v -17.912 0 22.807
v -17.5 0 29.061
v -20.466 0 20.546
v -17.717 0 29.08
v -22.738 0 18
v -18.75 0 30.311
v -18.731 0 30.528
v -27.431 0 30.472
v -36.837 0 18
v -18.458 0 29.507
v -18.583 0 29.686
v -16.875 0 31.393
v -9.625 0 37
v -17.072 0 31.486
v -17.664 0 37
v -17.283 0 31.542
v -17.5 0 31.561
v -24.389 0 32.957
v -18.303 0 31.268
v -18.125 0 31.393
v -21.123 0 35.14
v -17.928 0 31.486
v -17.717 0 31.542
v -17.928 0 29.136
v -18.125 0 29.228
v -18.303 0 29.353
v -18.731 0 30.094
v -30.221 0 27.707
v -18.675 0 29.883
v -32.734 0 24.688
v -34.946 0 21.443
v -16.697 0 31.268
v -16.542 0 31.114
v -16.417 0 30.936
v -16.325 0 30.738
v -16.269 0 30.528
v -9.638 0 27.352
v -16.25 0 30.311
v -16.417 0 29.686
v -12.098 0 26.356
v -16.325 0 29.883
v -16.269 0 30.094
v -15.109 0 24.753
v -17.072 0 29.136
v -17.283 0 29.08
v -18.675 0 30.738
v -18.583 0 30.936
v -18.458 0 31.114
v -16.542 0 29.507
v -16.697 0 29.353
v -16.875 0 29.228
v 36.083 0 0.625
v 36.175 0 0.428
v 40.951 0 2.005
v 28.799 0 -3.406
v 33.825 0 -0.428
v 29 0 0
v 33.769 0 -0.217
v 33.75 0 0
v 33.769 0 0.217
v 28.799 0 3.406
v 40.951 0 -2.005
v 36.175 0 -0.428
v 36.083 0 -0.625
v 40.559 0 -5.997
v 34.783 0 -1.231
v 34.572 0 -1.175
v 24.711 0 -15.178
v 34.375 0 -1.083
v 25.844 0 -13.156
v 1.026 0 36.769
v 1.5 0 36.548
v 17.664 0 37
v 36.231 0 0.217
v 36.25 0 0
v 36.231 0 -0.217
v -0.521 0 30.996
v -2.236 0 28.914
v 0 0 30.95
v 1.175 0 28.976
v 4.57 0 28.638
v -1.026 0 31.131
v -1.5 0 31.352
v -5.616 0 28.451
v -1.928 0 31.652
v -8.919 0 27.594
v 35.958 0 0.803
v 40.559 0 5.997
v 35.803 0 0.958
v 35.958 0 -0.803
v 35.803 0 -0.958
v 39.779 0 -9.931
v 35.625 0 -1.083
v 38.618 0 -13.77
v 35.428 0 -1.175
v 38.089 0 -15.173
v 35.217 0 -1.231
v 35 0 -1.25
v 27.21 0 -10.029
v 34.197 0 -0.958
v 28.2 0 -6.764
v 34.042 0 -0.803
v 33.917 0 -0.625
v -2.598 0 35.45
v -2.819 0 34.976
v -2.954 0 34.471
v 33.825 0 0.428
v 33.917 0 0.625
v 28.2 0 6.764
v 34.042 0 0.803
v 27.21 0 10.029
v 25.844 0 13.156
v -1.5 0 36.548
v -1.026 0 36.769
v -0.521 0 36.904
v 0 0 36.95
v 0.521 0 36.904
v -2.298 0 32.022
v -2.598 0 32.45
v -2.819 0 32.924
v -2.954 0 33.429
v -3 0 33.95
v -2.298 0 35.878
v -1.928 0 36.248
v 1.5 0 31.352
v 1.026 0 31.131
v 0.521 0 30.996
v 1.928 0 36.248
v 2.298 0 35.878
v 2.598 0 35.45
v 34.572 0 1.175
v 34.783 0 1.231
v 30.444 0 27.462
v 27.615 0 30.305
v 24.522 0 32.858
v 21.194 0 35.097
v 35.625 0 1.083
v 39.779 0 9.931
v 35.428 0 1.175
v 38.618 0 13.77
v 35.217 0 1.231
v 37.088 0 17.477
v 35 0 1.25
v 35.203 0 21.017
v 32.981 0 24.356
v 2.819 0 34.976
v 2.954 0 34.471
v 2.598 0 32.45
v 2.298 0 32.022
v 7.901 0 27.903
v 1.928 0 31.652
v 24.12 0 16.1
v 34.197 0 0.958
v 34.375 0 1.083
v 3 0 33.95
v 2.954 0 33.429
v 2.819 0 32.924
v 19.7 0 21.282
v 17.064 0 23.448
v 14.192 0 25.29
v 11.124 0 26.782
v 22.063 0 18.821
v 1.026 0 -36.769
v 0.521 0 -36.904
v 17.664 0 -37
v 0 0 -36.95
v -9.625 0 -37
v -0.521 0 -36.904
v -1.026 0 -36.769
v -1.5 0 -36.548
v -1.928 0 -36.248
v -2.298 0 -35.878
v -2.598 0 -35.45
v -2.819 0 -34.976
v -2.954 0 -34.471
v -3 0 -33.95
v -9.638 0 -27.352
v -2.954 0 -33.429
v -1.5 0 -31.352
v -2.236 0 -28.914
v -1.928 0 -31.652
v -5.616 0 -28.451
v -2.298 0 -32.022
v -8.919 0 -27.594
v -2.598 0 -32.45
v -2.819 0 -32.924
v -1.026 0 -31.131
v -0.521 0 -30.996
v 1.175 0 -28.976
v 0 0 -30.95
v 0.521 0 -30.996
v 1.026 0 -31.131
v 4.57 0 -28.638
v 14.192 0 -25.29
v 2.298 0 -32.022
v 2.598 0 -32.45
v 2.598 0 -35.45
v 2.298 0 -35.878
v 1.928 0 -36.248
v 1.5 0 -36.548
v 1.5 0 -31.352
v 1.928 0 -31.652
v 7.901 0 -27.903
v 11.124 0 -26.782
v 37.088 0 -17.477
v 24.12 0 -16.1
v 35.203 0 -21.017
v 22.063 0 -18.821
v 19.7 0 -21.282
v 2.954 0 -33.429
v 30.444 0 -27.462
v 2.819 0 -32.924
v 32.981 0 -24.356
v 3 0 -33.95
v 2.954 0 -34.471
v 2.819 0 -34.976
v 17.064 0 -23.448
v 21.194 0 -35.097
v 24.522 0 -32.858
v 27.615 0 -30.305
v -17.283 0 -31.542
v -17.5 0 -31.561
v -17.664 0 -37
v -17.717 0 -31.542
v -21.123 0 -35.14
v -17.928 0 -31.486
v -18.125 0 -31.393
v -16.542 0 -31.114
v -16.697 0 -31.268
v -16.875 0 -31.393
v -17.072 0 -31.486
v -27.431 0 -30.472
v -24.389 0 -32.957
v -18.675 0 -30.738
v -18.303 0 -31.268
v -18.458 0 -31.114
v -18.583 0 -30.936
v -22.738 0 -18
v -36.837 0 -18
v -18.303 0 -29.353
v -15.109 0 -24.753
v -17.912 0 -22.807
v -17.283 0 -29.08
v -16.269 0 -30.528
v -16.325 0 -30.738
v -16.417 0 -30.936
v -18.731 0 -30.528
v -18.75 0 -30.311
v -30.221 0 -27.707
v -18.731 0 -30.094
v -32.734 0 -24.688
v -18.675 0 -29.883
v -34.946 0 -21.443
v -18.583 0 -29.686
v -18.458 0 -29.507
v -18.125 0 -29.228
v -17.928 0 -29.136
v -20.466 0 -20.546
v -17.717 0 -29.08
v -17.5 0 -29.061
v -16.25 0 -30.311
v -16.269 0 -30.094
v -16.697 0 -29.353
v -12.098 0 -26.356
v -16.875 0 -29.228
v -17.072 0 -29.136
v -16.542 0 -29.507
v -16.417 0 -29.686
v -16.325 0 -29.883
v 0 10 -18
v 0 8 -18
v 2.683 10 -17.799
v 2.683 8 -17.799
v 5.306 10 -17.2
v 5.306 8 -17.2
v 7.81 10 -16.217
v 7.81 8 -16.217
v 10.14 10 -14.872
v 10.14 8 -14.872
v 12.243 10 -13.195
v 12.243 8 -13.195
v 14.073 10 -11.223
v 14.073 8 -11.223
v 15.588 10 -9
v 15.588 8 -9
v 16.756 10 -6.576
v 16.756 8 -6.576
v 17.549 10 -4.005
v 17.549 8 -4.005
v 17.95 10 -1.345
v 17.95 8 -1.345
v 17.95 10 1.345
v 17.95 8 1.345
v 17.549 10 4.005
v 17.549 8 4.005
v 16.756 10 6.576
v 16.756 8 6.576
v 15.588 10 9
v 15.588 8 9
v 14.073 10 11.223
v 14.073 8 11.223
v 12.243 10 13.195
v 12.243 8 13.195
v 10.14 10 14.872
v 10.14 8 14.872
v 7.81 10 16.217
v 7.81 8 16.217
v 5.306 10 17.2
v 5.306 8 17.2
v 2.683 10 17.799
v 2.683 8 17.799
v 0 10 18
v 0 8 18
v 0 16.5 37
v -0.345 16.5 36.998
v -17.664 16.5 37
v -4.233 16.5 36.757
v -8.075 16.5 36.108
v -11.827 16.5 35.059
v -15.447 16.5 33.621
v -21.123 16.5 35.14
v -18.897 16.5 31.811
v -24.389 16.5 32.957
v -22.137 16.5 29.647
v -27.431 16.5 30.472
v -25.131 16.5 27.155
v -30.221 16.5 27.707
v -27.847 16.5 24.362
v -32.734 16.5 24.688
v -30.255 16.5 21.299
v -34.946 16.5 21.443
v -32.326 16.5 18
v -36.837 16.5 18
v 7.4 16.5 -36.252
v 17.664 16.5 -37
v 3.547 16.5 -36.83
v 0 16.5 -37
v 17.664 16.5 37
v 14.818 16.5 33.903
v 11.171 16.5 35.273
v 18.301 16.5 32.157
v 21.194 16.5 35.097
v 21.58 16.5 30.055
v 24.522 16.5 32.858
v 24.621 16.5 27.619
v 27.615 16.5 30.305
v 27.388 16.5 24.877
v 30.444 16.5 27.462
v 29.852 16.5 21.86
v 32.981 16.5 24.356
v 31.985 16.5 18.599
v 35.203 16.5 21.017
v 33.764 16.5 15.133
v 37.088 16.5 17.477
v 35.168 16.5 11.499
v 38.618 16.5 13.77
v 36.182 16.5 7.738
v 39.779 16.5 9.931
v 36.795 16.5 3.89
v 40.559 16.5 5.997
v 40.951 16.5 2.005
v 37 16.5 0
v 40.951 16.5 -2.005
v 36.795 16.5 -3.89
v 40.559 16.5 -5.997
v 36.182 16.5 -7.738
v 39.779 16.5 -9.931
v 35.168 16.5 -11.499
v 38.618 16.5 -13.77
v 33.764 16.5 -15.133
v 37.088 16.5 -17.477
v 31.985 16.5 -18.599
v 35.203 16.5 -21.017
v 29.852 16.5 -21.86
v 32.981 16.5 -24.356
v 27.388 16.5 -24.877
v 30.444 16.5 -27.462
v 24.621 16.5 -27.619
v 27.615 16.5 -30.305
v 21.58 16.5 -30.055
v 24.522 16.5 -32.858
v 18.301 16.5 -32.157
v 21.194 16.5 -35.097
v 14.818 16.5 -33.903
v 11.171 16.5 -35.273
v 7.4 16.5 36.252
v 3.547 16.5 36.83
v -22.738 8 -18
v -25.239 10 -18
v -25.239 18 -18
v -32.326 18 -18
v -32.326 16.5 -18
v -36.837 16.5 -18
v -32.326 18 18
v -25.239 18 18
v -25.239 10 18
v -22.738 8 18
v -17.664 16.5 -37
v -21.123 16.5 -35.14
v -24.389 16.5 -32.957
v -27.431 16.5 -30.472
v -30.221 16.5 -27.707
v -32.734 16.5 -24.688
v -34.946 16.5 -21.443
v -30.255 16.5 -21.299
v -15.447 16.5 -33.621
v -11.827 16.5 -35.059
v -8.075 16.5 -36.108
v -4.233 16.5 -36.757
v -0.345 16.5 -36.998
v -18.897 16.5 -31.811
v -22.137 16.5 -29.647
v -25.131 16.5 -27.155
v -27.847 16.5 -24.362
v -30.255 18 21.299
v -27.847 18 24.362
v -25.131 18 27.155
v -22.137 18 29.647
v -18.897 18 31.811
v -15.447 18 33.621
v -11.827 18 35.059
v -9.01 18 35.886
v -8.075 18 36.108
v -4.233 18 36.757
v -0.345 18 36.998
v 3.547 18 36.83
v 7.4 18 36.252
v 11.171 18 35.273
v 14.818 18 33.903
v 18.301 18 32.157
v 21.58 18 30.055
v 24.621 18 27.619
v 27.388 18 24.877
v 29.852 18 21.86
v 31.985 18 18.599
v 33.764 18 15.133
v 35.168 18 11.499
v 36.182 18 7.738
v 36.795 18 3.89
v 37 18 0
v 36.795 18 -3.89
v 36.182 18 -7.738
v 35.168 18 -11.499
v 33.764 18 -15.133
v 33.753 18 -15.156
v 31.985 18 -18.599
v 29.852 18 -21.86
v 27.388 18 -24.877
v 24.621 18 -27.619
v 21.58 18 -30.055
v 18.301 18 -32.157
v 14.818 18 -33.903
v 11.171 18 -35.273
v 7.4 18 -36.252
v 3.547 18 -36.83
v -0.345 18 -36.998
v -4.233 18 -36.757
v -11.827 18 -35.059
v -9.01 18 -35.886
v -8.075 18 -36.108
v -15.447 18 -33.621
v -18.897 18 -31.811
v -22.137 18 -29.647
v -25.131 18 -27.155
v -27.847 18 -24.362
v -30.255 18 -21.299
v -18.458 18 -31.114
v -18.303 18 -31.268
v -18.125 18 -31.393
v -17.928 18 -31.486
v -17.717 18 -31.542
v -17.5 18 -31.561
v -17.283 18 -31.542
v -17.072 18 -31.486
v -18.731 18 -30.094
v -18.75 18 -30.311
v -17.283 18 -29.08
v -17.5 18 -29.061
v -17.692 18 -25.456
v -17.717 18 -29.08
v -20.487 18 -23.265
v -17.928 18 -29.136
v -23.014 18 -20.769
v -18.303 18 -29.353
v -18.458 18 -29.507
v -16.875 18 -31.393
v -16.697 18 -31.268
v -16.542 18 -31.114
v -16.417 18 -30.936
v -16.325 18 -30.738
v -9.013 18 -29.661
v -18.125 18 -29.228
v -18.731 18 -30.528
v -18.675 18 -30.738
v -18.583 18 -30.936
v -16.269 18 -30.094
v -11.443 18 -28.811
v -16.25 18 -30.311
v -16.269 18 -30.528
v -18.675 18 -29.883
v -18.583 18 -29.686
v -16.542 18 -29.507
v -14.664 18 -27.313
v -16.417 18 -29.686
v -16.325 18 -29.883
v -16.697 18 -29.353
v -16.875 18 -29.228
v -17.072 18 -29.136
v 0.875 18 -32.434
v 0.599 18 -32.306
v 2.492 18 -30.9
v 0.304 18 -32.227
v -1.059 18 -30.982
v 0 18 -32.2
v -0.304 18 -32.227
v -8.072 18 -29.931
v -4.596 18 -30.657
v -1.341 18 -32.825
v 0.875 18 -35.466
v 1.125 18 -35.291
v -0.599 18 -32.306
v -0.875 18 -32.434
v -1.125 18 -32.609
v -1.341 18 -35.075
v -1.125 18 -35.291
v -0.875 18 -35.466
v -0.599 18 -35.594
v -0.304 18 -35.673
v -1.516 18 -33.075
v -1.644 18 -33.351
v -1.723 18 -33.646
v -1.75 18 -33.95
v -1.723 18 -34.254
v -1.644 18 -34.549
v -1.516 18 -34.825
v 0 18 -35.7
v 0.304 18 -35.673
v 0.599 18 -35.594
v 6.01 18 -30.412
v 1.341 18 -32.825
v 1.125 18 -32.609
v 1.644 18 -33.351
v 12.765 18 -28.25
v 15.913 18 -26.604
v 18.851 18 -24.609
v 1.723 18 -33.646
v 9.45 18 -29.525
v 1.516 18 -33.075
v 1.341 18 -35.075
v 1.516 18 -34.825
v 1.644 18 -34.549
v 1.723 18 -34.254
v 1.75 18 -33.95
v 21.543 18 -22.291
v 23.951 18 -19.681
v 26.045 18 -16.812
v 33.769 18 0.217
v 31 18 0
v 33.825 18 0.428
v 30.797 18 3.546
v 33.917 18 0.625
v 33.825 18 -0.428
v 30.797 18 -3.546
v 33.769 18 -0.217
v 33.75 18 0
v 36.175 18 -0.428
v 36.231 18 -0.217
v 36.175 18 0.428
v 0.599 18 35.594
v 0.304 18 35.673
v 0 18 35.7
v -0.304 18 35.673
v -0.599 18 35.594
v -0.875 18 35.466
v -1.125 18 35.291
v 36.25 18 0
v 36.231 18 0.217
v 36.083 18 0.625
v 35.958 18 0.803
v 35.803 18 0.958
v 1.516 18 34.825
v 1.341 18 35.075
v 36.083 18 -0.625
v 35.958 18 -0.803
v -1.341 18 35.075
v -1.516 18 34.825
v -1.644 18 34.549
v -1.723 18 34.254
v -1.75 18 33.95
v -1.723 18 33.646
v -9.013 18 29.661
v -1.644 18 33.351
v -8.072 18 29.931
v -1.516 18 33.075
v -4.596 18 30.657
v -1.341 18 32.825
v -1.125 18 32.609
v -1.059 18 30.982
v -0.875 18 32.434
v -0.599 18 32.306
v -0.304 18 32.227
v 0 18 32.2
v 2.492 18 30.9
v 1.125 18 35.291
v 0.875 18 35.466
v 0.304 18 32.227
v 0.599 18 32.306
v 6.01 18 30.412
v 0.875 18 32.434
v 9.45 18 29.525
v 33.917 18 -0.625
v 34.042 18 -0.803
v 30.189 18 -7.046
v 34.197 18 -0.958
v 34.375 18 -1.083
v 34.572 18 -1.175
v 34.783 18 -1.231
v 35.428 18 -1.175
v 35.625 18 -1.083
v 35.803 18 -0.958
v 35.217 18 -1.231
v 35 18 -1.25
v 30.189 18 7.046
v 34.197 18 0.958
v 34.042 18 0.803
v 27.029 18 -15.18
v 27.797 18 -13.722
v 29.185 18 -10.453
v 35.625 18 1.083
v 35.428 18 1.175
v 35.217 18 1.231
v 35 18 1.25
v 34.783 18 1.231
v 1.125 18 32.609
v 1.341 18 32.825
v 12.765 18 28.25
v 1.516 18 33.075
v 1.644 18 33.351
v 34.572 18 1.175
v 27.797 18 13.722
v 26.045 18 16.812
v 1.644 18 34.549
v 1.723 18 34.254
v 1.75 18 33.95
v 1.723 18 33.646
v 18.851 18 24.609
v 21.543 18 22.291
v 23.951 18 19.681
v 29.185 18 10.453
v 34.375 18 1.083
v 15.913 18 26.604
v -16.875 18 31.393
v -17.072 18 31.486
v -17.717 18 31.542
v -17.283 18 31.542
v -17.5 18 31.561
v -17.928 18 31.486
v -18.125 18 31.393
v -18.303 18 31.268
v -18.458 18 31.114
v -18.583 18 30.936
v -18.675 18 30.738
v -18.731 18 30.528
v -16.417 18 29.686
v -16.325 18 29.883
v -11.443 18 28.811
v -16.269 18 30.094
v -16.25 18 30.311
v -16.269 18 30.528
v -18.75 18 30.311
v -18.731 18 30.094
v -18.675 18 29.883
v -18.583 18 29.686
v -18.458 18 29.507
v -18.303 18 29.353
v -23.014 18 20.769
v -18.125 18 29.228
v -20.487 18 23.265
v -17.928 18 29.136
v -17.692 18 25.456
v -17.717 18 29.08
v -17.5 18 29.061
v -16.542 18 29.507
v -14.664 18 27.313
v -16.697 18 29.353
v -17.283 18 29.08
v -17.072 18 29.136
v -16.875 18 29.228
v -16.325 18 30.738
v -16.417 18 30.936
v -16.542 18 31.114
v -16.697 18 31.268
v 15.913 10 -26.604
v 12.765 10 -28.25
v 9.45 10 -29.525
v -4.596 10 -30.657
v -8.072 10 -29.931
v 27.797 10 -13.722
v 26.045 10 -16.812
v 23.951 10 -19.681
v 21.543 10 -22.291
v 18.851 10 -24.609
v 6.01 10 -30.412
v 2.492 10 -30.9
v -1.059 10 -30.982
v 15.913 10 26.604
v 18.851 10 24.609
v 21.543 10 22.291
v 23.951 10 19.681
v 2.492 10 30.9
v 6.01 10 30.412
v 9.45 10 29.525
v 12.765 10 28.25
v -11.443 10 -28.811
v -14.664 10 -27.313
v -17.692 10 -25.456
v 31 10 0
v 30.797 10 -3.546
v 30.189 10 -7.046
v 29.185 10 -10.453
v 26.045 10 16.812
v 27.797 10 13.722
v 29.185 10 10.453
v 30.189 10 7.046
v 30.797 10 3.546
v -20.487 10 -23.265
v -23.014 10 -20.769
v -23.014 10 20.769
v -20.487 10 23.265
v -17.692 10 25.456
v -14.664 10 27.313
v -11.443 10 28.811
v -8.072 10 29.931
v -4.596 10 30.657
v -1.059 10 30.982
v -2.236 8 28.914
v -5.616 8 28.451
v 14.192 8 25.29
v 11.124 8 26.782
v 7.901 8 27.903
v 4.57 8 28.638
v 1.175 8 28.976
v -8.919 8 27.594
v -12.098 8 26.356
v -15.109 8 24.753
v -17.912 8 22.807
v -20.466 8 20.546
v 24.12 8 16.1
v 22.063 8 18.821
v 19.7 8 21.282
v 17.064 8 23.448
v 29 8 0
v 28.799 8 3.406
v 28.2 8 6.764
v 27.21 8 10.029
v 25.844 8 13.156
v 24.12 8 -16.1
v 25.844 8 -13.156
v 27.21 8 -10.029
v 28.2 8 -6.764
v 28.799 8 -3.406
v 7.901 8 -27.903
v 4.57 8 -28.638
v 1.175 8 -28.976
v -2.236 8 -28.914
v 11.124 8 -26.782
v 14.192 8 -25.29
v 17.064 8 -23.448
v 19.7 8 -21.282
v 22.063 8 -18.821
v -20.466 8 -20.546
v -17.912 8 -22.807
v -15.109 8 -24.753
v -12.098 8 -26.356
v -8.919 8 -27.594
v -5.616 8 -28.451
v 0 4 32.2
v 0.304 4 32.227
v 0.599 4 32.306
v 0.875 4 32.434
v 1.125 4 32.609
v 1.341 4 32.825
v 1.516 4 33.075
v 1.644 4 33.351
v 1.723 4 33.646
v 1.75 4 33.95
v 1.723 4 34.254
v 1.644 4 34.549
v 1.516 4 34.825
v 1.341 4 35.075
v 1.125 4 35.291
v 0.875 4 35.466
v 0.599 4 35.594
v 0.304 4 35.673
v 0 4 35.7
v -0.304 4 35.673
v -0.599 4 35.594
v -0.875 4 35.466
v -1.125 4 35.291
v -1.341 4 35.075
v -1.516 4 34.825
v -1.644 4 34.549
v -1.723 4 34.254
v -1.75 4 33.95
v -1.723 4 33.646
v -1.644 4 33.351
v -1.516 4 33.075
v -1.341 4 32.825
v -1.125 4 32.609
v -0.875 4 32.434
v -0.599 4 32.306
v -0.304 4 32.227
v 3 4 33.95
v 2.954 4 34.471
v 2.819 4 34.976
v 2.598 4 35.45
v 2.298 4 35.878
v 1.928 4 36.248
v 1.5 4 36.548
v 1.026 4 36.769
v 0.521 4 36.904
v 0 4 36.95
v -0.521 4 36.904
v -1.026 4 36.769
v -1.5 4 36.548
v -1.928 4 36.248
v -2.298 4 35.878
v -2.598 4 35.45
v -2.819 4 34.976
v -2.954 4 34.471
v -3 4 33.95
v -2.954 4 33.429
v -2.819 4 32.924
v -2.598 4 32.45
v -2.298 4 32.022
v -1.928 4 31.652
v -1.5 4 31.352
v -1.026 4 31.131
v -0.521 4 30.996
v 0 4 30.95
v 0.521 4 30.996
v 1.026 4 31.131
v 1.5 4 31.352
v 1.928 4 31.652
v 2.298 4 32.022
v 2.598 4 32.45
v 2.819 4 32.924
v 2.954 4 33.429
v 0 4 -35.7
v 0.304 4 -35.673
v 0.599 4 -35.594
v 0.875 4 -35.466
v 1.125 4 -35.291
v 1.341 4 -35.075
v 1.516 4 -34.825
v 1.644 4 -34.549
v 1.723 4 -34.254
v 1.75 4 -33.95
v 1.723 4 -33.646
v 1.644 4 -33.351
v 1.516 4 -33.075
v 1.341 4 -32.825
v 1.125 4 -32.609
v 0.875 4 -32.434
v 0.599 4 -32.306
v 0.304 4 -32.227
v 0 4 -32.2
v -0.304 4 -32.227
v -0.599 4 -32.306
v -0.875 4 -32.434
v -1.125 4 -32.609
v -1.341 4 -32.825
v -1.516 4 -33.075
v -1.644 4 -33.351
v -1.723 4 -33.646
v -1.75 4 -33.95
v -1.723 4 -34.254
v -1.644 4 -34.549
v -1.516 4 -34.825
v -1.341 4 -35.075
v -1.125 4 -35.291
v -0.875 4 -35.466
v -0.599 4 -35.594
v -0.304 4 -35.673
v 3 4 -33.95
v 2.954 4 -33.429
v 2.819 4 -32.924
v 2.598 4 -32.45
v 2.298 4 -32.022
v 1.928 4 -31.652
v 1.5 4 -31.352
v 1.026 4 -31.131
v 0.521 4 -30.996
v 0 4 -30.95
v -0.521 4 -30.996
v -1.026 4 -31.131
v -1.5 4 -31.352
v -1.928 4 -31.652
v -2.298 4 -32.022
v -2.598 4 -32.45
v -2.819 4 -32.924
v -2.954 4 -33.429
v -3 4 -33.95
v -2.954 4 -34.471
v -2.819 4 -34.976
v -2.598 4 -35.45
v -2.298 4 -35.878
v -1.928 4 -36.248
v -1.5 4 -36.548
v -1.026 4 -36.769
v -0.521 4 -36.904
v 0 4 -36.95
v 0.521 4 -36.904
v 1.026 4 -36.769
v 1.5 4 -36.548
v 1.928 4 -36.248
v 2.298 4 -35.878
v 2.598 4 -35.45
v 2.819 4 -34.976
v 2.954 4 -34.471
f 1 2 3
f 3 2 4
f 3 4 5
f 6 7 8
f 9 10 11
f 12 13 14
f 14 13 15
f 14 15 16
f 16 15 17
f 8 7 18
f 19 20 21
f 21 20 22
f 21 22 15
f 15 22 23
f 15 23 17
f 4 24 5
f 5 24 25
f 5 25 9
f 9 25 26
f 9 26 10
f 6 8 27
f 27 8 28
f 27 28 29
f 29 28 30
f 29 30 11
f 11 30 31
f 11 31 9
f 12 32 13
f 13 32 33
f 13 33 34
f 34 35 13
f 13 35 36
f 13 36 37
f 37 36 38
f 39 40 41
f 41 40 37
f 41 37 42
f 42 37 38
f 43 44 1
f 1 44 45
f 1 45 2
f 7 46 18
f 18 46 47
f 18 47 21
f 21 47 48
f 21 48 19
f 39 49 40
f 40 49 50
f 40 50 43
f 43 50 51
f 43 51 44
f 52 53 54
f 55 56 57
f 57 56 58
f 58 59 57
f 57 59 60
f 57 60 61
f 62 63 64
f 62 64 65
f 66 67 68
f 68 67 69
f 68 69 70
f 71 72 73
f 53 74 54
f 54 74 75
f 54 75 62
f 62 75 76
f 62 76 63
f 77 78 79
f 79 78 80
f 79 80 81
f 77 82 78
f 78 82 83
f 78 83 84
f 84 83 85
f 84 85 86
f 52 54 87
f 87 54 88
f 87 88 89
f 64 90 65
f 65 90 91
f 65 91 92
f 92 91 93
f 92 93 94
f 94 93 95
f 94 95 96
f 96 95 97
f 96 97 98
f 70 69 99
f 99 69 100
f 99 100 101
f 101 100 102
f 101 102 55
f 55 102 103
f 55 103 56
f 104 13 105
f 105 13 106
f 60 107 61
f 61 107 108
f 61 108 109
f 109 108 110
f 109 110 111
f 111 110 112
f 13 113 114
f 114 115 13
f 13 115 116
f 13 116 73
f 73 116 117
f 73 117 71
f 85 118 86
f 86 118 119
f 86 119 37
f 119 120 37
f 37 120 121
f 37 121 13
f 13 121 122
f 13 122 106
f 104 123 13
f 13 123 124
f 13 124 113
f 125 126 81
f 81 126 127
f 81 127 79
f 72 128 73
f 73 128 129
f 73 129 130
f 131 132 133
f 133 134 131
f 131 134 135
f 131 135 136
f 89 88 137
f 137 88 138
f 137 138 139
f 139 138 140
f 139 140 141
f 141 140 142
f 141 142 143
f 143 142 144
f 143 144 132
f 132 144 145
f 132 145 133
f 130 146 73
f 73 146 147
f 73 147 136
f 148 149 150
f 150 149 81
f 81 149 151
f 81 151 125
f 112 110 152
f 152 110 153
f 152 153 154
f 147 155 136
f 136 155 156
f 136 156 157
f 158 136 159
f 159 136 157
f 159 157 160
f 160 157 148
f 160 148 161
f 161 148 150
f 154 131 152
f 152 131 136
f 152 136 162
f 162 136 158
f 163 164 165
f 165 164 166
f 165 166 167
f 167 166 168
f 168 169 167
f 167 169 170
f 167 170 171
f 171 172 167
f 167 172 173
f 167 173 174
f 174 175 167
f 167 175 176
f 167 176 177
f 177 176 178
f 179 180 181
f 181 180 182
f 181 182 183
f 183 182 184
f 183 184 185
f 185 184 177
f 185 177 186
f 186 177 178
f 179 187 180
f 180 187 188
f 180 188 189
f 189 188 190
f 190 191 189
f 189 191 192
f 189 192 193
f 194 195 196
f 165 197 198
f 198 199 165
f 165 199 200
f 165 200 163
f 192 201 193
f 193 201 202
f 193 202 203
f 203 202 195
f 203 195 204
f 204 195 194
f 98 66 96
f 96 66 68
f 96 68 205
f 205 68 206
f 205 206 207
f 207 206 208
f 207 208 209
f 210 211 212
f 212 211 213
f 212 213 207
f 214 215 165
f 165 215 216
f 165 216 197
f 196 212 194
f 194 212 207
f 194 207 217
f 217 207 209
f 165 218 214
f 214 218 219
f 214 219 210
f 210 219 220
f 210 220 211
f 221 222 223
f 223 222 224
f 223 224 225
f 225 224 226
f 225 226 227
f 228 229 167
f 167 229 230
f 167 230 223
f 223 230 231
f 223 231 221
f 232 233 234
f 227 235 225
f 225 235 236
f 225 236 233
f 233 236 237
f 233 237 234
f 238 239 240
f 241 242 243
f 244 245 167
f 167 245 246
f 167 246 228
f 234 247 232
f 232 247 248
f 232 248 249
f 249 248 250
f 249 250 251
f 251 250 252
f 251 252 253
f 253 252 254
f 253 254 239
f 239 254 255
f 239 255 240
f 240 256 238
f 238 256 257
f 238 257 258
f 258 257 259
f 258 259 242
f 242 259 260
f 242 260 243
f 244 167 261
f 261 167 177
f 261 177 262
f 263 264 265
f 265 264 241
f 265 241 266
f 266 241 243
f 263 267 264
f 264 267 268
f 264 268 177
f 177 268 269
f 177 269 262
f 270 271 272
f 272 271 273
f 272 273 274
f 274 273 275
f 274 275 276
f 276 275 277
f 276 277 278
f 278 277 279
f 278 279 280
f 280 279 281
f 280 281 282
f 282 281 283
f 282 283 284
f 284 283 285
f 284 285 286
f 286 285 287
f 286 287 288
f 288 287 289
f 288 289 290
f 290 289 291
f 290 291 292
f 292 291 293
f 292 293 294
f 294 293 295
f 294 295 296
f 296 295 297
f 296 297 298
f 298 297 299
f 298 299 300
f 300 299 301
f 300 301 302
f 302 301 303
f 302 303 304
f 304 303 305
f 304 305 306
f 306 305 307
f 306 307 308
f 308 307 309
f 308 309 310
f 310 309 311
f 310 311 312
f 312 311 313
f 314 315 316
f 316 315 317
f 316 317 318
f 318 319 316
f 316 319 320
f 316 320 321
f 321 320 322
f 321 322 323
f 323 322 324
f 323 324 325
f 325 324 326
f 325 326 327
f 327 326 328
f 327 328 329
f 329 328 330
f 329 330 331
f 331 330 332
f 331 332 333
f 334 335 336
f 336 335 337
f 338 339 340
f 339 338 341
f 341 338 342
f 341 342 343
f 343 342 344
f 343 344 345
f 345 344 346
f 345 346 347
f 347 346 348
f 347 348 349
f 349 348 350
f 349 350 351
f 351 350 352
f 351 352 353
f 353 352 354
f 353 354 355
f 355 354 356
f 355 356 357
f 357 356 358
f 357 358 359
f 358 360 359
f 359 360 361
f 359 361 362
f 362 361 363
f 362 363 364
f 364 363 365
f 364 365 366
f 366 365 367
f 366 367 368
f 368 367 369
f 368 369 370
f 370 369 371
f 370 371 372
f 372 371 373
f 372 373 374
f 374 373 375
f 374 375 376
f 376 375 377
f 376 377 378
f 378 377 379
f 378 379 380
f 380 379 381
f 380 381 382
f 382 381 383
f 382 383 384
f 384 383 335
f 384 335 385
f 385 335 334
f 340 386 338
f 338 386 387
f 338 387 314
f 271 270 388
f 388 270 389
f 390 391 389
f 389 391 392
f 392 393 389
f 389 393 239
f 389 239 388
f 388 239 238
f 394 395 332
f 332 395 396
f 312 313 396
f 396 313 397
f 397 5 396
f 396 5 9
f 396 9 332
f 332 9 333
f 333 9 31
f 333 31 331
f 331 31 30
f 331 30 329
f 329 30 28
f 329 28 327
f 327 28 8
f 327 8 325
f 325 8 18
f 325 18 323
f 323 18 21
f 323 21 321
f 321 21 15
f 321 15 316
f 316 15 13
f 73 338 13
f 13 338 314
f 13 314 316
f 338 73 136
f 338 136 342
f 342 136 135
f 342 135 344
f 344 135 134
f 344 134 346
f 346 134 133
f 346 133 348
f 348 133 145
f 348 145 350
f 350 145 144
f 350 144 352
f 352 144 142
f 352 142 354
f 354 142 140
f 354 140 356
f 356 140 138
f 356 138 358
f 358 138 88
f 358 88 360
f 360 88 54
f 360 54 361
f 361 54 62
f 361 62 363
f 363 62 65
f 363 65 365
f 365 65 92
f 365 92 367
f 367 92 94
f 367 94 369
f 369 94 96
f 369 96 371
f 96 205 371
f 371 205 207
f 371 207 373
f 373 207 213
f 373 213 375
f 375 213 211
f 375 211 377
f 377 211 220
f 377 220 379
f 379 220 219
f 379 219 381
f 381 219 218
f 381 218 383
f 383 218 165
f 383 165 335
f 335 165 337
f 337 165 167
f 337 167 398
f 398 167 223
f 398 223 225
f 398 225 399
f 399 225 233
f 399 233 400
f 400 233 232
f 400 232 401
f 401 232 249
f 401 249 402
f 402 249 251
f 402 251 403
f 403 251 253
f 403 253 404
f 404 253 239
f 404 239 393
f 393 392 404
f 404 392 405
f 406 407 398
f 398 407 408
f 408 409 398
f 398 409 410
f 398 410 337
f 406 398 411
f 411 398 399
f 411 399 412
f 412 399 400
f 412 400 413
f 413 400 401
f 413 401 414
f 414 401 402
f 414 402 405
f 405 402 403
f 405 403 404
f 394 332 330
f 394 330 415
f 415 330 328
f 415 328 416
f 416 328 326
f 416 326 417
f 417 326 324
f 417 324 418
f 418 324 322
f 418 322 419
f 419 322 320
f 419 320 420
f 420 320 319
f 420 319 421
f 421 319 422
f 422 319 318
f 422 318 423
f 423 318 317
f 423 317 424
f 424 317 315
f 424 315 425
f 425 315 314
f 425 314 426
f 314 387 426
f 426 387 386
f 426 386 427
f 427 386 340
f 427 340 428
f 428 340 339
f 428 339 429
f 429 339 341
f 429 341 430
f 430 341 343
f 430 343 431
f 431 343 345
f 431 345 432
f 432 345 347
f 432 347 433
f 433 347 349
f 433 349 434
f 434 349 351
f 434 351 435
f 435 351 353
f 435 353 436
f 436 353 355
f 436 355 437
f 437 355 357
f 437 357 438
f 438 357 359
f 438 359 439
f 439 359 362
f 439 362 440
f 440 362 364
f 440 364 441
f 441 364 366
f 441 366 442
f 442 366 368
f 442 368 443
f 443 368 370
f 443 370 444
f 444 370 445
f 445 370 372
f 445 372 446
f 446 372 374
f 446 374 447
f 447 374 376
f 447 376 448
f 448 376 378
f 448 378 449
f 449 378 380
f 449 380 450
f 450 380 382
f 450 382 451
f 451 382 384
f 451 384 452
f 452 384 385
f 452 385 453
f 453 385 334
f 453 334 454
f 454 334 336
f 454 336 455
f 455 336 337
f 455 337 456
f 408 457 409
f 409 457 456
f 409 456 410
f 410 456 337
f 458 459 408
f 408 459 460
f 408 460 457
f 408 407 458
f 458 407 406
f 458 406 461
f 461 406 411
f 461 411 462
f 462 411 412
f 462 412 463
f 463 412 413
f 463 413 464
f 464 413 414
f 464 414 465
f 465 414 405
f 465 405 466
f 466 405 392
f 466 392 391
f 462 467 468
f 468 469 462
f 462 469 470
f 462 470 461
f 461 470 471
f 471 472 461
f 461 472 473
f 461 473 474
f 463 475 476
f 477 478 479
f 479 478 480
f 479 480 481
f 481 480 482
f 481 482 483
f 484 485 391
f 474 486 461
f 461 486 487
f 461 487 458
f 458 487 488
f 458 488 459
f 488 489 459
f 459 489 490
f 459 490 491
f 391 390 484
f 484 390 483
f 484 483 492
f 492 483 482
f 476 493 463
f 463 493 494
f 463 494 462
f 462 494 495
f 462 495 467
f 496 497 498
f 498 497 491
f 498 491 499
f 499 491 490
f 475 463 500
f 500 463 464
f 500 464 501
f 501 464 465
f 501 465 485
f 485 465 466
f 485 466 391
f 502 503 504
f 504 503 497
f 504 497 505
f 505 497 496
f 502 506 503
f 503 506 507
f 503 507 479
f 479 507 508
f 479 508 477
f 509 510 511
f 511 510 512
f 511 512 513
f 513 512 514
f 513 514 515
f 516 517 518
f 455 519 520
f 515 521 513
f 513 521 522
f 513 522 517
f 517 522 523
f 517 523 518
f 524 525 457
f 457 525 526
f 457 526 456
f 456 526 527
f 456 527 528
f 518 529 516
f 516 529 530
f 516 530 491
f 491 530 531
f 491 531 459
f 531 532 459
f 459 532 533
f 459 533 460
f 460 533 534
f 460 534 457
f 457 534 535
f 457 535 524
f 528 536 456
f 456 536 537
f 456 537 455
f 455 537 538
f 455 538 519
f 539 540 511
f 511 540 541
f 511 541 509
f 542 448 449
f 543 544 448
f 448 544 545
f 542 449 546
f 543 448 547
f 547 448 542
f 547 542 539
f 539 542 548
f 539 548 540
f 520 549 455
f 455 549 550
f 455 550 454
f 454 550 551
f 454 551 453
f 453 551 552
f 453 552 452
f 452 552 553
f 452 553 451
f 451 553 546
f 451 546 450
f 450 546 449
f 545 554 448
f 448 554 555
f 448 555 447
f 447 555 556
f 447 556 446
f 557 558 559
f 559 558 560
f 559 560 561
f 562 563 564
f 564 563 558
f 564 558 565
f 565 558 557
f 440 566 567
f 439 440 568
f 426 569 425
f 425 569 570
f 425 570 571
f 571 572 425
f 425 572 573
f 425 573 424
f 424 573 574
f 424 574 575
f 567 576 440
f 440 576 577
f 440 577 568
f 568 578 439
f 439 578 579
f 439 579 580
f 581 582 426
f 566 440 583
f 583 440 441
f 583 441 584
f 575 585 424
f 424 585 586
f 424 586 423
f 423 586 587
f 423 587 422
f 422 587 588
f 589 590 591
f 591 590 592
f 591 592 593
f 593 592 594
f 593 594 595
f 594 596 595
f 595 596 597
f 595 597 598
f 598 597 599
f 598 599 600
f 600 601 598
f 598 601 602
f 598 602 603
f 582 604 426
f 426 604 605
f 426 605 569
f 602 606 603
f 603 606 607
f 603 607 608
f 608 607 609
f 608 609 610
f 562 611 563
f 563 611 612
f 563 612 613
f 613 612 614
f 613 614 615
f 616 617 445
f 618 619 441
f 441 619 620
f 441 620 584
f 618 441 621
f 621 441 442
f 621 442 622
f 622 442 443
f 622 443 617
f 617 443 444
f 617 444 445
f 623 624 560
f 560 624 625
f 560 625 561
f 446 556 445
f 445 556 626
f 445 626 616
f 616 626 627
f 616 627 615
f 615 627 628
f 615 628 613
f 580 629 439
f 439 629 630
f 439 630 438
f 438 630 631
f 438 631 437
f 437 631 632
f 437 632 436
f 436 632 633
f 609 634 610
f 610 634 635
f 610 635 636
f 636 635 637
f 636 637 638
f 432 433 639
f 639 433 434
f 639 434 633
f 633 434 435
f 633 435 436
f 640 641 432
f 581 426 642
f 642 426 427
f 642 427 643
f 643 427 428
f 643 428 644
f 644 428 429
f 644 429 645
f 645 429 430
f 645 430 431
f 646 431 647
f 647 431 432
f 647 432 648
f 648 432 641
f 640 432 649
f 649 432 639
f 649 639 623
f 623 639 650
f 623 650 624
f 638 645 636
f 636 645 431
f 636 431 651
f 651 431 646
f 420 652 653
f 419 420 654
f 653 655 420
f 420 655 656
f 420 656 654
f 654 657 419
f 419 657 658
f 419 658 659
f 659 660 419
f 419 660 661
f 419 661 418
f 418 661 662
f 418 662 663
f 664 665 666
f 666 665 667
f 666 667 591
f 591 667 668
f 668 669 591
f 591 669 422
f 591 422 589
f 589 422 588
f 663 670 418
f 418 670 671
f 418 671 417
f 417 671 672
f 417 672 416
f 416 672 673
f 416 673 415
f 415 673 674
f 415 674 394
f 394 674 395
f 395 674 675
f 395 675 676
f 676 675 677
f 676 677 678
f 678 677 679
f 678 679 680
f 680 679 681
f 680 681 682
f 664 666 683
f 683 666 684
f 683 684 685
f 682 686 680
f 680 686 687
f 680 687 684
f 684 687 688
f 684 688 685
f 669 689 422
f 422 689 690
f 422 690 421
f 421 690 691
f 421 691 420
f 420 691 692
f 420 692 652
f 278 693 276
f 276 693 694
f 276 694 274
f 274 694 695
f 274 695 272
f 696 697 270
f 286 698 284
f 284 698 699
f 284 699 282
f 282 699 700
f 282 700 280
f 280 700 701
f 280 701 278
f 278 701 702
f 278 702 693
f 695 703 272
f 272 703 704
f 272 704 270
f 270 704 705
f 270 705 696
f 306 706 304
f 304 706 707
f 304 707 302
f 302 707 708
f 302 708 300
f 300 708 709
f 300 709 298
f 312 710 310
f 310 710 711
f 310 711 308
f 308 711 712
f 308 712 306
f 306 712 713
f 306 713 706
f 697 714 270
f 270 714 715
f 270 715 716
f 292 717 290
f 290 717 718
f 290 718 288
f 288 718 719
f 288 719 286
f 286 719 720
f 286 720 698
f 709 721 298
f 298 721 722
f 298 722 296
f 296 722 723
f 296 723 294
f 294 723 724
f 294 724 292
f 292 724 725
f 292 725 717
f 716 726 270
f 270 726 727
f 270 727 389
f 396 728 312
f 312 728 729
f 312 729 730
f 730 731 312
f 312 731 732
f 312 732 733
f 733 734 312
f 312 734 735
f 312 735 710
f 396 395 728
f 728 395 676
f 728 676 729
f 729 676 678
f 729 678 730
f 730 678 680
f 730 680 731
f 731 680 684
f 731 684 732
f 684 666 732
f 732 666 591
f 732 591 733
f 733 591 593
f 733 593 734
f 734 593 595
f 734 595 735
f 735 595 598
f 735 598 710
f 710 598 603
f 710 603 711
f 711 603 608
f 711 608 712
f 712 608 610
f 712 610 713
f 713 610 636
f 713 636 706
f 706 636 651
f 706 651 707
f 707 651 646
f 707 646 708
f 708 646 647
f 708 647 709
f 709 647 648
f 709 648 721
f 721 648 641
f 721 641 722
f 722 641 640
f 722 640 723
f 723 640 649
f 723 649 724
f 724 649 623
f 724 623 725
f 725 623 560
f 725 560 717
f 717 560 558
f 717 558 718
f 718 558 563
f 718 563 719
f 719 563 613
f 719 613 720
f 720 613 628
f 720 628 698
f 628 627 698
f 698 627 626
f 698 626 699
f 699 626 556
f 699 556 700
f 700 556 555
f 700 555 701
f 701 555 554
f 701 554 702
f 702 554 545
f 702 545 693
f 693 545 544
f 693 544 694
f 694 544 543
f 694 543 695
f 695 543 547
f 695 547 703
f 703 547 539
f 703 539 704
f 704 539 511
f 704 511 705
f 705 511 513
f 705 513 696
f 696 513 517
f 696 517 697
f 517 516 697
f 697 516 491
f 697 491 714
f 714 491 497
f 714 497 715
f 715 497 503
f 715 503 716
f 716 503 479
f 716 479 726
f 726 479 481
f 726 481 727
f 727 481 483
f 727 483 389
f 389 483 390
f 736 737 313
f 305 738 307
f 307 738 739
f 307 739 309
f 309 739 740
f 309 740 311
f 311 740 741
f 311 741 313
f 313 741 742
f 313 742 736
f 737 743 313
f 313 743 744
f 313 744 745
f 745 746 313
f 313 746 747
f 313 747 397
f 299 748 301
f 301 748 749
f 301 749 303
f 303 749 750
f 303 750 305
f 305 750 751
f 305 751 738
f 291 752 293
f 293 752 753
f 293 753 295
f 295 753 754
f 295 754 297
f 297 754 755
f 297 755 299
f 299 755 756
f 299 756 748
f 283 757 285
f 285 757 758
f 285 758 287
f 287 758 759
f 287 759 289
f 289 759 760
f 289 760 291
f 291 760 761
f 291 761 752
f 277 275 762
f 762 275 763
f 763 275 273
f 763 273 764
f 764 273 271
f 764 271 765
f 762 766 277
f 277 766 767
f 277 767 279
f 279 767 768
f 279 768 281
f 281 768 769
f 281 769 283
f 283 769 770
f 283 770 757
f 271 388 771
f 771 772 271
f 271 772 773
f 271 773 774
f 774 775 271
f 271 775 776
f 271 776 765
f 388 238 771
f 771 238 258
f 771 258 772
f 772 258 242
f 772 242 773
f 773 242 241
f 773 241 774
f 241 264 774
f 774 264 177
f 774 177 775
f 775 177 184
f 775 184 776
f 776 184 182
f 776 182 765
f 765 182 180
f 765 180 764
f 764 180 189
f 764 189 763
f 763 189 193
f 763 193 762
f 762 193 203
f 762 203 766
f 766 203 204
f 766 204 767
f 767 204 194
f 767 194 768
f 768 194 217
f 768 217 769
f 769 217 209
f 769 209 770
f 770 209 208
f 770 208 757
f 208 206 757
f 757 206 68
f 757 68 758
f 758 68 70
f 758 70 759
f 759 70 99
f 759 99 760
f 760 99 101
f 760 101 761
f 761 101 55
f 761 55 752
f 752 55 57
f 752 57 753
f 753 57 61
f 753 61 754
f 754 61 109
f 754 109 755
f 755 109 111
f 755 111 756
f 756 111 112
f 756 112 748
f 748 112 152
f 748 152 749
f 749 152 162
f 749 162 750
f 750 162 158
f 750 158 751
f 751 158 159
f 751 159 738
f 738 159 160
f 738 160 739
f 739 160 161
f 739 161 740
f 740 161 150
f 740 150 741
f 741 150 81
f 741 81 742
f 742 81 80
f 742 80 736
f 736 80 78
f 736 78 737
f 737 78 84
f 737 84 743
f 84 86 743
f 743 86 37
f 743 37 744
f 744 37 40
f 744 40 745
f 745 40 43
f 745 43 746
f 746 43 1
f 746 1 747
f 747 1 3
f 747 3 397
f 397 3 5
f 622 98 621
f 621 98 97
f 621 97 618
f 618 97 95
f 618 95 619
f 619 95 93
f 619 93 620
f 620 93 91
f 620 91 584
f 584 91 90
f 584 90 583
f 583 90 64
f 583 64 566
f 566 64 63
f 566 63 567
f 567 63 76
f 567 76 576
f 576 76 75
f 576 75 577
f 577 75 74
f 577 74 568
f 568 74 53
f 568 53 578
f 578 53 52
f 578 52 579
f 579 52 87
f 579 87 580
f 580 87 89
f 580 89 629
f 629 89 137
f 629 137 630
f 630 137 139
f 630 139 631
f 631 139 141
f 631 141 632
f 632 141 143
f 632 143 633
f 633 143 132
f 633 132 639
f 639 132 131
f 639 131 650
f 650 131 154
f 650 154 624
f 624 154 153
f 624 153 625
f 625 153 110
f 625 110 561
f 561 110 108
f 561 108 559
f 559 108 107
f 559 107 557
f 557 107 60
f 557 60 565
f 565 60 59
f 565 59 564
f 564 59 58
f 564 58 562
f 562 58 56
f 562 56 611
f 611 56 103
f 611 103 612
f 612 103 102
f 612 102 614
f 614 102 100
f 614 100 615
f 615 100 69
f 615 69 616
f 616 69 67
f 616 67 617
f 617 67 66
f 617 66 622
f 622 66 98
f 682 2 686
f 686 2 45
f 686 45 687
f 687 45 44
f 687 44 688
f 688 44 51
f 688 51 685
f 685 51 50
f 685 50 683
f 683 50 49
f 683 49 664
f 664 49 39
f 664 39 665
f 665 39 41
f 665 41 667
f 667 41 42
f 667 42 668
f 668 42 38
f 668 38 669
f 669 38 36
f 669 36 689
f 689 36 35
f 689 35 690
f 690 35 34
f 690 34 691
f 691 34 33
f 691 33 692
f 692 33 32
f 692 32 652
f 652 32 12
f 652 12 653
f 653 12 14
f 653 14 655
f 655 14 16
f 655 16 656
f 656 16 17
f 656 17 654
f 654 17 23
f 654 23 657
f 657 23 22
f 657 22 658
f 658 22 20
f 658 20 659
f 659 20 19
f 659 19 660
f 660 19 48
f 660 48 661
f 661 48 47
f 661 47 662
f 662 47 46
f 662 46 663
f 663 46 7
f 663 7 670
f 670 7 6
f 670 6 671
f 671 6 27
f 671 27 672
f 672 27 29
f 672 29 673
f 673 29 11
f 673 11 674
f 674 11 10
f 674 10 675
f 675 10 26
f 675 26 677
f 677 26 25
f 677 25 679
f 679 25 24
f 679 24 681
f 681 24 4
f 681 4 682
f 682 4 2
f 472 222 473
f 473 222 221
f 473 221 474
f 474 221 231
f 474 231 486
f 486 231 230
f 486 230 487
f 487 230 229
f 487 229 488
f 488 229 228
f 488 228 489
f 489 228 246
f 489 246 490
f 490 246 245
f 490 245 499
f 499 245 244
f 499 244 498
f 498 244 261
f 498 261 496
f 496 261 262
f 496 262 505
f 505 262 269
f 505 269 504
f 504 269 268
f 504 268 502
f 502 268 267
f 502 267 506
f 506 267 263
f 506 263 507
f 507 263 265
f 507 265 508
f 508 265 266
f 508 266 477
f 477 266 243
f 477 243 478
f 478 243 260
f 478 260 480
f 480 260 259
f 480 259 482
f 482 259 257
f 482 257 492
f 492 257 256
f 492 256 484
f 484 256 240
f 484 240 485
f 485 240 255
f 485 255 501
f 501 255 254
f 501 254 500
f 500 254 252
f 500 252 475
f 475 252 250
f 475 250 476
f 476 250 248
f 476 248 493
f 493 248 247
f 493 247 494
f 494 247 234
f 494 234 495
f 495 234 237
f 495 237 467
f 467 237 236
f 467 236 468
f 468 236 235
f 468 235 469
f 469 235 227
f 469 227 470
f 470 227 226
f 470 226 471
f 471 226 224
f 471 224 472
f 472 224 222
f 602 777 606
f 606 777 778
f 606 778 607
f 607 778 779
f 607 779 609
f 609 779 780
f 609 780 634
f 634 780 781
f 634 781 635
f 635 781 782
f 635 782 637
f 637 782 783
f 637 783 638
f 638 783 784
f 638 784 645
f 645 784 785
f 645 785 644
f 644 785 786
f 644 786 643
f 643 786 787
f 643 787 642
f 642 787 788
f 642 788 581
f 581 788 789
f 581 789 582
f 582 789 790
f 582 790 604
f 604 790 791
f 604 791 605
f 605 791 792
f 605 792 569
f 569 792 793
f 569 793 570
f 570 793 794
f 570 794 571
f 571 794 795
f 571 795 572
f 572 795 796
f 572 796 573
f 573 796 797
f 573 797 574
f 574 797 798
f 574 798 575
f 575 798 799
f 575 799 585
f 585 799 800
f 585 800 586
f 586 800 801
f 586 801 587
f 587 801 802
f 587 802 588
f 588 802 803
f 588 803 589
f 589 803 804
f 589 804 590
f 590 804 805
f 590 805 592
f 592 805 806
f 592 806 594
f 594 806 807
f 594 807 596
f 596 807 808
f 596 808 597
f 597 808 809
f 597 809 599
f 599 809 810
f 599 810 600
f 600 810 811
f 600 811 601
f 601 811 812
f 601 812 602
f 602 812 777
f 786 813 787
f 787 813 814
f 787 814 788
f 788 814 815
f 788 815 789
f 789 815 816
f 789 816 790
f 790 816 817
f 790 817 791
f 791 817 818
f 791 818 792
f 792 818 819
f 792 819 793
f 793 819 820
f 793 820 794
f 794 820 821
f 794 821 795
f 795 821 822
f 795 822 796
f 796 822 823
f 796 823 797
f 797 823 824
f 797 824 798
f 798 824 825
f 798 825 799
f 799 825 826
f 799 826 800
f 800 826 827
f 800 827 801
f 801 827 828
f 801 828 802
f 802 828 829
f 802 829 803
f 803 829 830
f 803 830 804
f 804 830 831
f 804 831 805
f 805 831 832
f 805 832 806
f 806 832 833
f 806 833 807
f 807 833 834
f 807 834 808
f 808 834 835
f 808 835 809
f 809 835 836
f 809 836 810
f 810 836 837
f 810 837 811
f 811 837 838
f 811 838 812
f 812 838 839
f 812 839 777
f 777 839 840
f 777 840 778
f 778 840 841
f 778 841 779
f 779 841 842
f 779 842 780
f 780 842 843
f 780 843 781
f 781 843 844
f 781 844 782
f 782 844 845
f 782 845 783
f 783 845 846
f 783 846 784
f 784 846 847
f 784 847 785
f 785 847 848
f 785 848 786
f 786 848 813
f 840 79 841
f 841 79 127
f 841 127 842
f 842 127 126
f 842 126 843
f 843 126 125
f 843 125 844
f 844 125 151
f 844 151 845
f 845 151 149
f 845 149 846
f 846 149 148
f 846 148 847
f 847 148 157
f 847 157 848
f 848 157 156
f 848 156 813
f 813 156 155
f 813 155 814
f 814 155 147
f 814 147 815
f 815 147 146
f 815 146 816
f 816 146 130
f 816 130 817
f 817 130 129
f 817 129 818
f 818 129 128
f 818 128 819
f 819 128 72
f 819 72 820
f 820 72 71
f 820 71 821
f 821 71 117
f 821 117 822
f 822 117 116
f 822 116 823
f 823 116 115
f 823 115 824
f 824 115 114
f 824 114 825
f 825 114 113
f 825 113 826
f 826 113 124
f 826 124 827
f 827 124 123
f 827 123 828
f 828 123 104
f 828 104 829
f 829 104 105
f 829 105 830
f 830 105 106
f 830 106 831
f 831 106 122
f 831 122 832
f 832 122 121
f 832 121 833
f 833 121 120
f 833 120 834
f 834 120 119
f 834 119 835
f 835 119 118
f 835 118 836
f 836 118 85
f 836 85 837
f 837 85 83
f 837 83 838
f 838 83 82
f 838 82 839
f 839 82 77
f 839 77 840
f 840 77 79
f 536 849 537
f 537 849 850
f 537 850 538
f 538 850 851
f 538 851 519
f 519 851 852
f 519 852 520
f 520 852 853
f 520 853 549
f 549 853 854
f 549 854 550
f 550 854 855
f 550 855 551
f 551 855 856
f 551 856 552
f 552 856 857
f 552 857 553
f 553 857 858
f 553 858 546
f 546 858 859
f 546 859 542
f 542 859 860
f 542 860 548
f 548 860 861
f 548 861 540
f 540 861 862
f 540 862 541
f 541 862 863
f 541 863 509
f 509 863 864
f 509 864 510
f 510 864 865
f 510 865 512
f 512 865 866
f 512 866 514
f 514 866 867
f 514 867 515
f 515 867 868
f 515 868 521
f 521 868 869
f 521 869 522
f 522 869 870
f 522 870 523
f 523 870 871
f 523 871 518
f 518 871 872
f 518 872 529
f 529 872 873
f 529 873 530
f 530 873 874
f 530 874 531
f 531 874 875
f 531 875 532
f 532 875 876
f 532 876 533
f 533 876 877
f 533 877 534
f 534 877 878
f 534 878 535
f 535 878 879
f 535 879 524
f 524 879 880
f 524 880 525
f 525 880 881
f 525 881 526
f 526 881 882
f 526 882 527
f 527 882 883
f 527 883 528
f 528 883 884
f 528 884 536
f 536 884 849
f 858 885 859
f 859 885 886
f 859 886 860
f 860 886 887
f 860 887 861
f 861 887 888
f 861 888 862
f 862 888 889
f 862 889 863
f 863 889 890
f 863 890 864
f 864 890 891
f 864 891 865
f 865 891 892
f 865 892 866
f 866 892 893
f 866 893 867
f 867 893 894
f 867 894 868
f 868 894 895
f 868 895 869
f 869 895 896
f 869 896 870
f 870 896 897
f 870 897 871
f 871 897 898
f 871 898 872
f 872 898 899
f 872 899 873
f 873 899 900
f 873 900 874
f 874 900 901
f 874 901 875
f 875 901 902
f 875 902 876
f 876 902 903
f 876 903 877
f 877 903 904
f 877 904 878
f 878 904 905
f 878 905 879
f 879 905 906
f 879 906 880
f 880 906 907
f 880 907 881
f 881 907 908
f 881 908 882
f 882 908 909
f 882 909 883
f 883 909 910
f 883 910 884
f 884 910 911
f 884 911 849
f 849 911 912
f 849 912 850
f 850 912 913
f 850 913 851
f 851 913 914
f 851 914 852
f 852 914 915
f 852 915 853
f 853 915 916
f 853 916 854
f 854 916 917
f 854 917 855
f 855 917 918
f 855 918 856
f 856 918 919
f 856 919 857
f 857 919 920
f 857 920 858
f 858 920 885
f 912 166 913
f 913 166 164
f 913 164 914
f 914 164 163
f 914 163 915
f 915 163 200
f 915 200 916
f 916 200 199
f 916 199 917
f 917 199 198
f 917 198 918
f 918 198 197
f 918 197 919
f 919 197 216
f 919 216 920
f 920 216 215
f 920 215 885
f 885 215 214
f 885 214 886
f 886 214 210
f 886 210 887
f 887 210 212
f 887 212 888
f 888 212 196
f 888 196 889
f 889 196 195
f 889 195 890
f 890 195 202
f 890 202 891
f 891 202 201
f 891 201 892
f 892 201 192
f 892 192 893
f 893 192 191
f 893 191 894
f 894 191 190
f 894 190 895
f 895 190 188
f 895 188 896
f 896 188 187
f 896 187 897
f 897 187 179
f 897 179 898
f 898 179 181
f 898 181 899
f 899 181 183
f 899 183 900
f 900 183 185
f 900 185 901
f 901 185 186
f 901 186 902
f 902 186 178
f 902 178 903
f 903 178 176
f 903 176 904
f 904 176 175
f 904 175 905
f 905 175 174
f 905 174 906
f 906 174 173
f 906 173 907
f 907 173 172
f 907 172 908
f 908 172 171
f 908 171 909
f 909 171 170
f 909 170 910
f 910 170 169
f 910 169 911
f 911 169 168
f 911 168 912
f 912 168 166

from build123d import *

# Parameters (mm, degrees)
BOSS_EXTRUDE3_DEPTH = 16.5
BOSS_EXTRUDE5_DEPTH = 1.5
SKETCH13_R          = 31
CUT_EXTRUDE1_DEPTH  = 8
SKETCH14_R          = 29
CUT_EXTRUDE2_DEPTH  = 8
M3_TAPPED_HOLE1_D   = 2.5
CIRPATTERN1_COUNT   = 3
HOLE1_D             = 3.5
HOLE1_DEPTH         = 18
HOLE1_CBORE_D       = 6
HOLE1_CBORE_DEPTH   = 4
CIRPATTERN2_COUNT   = 2


with BuildPart() as part:
    # Sketch7 → Boss-Extrude3 (new body)
    with BuildSketch(Plane(origin=(0, 0, 0), x_dir=(1, 0, 0), z_dir=(0, 1, 0))):
        with BuildLine():
            Line((17.663521733, 37), (-17.663521733, 37))
            ThreePointArc((-17.663521733, 37), (-28.858964332, 29.123189689), (-36.837480913, 18))
            Line((-36.837480913, 18), (3.3e-08, 18))
            Line((3.3e-08, 18), (36.837480913, 18))
            ThreePointArc((36.837480913, 18), (28.858964332, 29.123189689), (17.663521733, 37))
        make_face()
        with BuildLine():
            Line((0, -18), (36.837480913, -18))
            Line((36.837480913, -18), (36.837480913, 18))
            Line((36.837480913, 18), (3.3e-08, 18))
            ThreePointArc((3.3e-08, 18), (12.727922073, 12.72792205), (18, 0))
            ThreePointArc((18, 0), (12.727922061, -12.727922061), (0, -18))
        make_face()
        with BuildLine():
            Line((36.837480913, 18), (36.837480913, -18))
            ThreePointArc((36.837480913, -18), (39.945817787, -9.237512722), (41, 0))
            ThreePointArc((41, 0), (39.945817787, 9.237512722), (36.837480913, 18))
        make_face()
        with BuildLine():
            ThreePointArc((-36.837480913, -18), (-28.858964332, -29.123189689), (-17.663521733, -37))
            Line((-17.663521733, -37), (17.663521733, -37))
            ThreePointArc((17.663521733, -37), (28.858964332, -29.123189689), (36.837480913, -18))
            Line((36.837480913, -18), (0, -18))
            Line((0, -18), (-36.837480913, -18))
        make_face()
    extrude(amount=BOSS_EXTRUDE3_DEPTH)

    # Sketch11 → Boss-Extrude5 (add)
    with BuildSketch(Plane(origin=(0, 16.5, 0), x_dir=(1, 0, 0), z_dir=(0, 1, 0))):
        with BuildLine():
            Line((-32.32645975, 18), (0, 18))
            ThreePointArc((0, 18), (12.727922061, 12.727922061), (18, 0))
            ThreePointArc((18, 0), (12.727922061, -12.727922061), (0, -18))
            Line((0, -18), (-32.32645975, -18))
            ThreePointArc((-32.32645975, -18), (9.298413554, -35.812560721), (37, 0))
            ThreePointArc((37, 0), (9.298413554, 35.812560721), (-32.32645975, 18))
        make_face()
    extrude(amount=BOSS_EXTRUDE5_DEPTH)

    # Sketch13 → Cut-Extrude1 (cut)
    with BuildSketch(Plane(origin=(0, 18, 0), x_dir=(1, 0, 0), z_dir=(0, 1, 0))):
        Circle(SKETCH13_R)
    extrude(amount=-CUT_EXTRUDE1_DEPTH, mode=Mode.SUBTRACT)

    # Sketch14 → Cut-Extrude2 (cut)
    with BuildSketch(Plane.XZ):
        Circle(SKETCH14_R)
    extrude(amount=-CUT_EXTRUDE2_DEPTH, mode=Mode.SUBTRACT)

    # M3 Tapped Hole1 (through all)
    with Locations(Plane(origin=(35, 0, 0), x_dir=(0, 0, -1), z_dir=(0, -1, 0))):
        with Locations((0, 0)):
            m3_tapped_hole1 = Hole(M3_TAPPED_HOLE1_D / 2)

    # CirPattern1: M3 Tapped Hole1 ×3 about axis
    cirpattern1_axis = Axis((0, 0, 0), (0, 1, 0))
    for i in range(1, CIRPATTERN1_COUNT):
        add(m3_tapped_hole1.rotate(cirpattern1_axis, i * 360 / CIRPATTERN1_COUNT), mode=Mode.SUBTRACT)

    # Hole1
    with Locations(Plane(origin=(0, 0, 33.95), x_dir=(0, 0, -1), z_dir=(0, -1, 0))):
        with Locations((0, 0), (30.604436826, -13.912164411)):
            hole1 = CounterBoreHole(HOLE1_D / 2, HOLE1_CBORE_D / 2, HOLE1_CBORE_DEPTH, depth=HOLE1_DEPTH)

    # CirPattern2: Hole1 ×2 about axis
    cirpattern2_axis = Axis((0, 0, 0), (0, 1, 0))
    for i in range(1, CIRPATTERN2_COUNT):
        add(hole1.rotate(cirpattern2_axis, i * 360 / CIRPATTERN2_COUNT), mode=Mode.SUBTRACT)


solid = part.part
